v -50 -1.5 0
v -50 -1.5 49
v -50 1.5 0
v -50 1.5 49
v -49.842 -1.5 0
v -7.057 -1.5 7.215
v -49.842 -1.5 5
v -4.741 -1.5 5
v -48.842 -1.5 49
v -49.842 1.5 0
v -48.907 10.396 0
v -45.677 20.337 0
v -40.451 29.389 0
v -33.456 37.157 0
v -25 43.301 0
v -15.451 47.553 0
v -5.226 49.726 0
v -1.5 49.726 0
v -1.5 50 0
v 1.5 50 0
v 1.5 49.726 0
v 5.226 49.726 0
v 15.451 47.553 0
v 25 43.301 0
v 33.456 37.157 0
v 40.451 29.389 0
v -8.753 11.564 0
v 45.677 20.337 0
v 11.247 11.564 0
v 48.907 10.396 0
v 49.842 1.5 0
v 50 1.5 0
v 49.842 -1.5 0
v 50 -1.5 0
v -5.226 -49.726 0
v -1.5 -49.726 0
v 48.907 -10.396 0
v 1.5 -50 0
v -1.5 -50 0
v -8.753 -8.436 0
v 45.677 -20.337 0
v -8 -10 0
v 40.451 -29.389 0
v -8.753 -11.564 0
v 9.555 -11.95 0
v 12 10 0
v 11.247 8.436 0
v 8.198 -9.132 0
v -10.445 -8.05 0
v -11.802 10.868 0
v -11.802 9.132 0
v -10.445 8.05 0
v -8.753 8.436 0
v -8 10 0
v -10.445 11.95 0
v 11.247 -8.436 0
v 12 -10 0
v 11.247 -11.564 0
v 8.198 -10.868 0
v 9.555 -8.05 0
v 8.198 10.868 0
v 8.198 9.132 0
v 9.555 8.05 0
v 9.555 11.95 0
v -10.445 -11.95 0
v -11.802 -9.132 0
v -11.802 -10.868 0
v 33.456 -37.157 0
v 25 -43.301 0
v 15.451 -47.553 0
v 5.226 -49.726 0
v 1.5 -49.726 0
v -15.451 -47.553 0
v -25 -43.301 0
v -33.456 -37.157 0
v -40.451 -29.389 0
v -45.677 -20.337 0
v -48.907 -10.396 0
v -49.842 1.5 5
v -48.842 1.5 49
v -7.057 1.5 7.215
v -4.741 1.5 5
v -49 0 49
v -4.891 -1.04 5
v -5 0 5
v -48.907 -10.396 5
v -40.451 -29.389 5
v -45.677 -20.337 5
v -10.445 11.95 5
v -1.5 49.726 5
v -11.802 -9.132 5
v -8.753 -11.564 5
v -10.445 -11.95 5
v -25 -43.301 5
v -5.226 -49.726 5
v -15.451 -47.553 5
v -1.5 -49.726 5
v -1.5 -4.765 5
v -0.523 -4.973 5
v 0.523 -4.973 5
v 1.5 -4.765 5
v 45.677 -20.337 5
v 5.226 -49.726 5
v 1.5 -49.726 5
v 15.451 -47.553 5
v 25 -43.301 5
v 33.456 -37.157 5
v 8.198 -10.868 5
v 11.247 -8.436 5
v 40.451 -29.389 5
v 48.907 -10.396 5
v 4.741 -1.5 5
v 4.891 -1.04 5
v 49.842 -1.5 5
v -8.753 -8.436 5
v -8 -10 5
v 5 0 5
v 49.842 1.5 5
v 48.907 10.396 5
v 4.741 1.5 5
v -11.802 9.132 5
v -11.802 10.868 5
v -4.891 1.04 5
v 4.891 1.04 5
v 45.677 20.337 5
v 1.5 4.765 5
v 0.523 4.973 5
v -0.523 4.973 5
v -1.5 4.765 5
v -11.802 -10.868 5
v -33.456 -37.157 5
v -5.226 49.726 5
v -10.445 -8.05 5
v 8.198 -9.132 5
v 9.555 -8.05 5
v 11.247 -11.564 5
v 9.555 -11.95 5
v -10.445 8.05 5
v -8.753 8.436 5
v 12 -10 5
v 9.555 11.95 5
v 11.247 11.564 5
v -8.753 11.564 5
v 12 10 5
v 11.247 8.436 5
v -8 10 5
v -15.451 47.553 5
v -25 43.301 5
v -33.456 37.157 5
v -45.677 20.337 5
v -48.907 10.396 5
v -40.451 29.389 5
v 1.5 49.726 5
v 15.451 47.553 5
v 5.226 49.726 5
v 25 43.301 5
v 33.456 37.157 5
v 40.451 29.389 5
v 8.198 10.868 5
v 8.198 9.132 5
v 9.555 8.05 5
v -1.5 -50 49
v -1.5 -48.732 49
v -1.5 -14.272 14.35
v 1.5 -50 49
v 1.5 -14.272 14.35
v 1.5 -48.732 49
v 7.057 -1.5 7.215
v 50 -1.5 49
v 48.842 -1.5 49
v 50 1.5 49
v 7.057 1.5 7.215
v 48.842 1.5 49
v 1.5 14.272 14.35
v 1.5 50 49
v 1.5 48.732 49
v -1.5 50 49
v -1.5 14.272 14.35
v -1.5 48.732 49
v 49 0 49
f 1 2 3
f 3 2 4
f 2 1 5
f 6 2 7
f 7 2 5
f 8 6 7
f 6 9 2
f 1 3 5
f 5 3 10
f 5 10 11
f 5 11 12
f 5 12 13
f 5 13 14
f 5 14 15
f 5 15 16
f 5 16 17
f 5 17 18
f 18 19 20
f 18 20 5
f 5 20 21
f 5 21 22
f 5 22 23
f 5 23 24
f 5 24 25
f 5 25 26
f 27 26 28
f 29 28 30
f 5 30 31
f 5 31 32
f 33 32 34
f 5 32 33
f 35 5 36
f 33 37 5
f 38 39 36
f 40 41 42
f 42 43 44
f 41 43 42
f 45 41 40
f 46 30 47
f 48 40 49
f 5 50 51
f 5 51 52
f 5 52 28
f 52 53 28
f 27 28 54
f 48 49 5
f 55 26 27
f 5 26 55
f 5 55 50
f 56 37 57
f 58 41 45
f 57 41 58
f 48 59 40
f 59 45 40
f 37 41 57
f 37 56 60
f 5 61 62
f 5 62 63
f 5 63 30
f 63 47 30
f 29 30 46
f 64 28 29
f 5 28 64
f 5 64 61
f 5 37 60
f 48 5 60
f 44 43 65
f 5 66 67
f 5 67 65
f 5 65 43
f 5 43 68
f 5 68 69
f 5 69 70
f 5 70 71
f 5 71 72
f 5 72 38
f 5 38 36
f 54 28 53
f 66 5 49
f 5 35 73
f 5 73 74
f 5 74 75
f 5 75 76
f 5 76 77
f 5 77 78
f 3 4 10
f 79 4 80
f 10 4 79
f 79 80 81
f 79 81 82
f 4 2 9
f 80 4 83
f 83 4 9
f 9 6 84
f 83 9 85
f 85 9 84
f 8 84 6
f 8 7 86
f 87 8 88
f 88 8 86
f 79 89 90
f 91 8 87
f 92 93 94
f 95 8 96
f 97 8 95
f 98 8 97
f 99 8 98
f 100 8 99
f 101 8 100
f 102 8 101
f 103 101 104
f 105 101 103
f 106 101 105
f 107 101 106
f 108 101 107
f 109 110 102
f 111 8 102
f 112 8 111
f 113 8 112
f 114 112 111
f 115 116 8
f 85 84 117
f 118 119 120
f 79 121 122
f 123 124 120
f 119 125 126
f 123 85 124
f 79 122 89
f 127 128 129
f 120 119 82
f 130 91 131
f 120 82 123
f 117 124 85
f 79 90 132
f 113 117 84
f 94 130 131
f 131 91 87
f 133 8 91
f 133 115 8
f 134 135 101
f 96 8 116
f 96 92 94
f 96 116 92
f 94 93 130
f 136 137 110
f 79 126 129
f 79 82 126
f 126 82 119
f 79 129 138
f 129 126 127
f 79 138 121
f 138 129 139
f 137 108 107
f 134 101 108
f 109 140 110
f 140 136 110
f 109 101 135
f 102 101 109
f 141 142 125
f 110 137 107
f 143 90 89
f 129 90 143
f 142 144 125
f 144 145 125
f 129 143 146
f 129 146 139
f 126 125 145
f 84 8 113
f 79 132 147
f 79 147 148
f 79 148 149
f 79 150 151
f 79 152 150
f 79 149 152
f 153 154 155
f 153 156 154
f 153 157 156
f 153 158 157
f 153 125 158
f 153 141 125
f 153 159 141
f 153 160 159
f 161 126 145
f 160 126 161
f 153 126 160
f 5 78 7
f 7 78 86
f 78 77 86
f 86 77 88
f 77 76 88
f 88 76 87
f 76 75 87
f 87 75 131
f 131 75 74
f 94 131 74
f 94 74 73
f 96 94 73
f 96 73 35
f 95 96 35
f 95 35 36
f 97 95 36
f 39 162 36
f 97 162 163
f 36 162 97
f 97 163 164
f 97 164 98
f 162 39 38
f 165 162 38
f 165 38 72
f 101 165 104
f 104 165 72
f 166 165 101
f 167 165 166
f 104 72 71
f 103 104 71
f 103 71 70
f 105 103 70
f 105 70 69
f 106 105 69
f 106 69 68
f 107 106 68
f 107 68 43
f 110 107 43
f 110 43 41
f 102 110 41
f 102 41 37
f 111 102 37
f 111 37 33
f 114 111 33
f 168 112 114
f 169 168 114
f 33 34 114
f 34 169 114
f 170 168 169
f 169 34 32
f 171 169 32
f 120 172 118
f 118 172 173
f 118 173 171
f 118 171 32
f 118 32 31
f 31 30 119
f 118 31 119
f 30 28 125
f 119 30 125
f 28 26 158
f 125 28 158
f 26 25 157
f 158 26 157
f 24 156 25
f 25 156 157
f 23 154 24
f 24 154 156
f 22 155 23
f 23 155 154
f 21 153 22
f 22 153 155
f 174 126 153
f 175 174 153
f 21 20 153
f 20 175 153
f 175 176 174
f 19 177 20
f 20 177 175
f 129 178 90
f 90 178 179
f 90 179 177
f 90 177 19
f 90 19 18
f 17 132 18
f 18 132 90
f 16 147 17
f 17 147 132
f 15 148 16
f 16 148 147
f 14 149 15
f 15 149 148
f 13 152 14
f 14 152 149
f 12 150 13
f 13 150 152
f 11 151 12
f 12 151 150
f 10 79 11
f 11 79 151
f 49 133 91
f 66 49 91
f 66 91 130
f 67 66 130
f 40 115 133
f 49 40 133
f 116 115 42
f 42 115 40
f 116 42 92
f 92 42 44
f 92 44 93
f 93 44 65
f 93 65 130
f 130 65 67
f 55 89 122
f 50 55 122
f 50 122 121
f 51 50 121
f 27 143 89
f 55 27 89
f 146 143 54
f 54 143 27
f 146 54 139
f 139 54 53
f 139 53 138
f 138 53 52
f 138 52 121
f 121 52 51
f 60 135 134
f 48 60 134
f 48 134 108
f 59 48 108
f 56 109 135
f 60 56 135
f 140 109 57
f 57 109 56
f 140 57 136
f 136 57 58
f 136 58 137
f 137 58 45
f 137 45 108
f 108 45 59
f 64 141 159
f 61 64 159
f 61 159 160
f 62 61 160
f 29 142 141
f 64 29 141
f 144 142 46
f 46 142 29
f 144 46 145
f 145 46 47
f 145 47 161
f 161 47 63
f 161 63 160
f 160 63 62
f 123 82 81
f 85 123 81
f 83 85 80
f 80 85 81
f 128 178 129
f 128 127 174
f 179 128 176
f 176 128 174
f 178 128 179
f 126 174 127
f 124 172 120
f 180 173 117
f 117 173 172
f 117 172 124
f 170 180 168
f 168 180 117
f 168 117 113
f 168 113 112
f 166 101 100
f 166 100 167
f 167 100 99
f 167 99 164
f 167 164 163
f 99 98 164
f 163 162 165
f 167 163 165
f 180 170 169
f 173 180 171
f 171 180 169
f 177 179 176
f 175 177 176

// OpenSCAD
//Diametro
diam=100;
//Grosor
g=3;
//Radio tornillo
rt=2;
rad=diam/2;
difference(){
union(){
cylinder(h=5, r=rad);
difference(){
union(){
translate([-rad,-g/2,0])
cube([diam,g,rad-1]);
translate([-g/2,-rad,0])
cube([g,diam,rad-1]);
}
cylinder(h=rad, r1=0, r2=rad);
}
}
//Union
translate([10,10,-5])
cylinder(h=15, r=rt);
translate([10,-10,-5])
cylinder(h=15, r=rt);
translate([-10,10,-5])
cylinder(h=15, r=rt);
translate([-10,-10,-5])
cylinder(h=15, r=rt);
}
